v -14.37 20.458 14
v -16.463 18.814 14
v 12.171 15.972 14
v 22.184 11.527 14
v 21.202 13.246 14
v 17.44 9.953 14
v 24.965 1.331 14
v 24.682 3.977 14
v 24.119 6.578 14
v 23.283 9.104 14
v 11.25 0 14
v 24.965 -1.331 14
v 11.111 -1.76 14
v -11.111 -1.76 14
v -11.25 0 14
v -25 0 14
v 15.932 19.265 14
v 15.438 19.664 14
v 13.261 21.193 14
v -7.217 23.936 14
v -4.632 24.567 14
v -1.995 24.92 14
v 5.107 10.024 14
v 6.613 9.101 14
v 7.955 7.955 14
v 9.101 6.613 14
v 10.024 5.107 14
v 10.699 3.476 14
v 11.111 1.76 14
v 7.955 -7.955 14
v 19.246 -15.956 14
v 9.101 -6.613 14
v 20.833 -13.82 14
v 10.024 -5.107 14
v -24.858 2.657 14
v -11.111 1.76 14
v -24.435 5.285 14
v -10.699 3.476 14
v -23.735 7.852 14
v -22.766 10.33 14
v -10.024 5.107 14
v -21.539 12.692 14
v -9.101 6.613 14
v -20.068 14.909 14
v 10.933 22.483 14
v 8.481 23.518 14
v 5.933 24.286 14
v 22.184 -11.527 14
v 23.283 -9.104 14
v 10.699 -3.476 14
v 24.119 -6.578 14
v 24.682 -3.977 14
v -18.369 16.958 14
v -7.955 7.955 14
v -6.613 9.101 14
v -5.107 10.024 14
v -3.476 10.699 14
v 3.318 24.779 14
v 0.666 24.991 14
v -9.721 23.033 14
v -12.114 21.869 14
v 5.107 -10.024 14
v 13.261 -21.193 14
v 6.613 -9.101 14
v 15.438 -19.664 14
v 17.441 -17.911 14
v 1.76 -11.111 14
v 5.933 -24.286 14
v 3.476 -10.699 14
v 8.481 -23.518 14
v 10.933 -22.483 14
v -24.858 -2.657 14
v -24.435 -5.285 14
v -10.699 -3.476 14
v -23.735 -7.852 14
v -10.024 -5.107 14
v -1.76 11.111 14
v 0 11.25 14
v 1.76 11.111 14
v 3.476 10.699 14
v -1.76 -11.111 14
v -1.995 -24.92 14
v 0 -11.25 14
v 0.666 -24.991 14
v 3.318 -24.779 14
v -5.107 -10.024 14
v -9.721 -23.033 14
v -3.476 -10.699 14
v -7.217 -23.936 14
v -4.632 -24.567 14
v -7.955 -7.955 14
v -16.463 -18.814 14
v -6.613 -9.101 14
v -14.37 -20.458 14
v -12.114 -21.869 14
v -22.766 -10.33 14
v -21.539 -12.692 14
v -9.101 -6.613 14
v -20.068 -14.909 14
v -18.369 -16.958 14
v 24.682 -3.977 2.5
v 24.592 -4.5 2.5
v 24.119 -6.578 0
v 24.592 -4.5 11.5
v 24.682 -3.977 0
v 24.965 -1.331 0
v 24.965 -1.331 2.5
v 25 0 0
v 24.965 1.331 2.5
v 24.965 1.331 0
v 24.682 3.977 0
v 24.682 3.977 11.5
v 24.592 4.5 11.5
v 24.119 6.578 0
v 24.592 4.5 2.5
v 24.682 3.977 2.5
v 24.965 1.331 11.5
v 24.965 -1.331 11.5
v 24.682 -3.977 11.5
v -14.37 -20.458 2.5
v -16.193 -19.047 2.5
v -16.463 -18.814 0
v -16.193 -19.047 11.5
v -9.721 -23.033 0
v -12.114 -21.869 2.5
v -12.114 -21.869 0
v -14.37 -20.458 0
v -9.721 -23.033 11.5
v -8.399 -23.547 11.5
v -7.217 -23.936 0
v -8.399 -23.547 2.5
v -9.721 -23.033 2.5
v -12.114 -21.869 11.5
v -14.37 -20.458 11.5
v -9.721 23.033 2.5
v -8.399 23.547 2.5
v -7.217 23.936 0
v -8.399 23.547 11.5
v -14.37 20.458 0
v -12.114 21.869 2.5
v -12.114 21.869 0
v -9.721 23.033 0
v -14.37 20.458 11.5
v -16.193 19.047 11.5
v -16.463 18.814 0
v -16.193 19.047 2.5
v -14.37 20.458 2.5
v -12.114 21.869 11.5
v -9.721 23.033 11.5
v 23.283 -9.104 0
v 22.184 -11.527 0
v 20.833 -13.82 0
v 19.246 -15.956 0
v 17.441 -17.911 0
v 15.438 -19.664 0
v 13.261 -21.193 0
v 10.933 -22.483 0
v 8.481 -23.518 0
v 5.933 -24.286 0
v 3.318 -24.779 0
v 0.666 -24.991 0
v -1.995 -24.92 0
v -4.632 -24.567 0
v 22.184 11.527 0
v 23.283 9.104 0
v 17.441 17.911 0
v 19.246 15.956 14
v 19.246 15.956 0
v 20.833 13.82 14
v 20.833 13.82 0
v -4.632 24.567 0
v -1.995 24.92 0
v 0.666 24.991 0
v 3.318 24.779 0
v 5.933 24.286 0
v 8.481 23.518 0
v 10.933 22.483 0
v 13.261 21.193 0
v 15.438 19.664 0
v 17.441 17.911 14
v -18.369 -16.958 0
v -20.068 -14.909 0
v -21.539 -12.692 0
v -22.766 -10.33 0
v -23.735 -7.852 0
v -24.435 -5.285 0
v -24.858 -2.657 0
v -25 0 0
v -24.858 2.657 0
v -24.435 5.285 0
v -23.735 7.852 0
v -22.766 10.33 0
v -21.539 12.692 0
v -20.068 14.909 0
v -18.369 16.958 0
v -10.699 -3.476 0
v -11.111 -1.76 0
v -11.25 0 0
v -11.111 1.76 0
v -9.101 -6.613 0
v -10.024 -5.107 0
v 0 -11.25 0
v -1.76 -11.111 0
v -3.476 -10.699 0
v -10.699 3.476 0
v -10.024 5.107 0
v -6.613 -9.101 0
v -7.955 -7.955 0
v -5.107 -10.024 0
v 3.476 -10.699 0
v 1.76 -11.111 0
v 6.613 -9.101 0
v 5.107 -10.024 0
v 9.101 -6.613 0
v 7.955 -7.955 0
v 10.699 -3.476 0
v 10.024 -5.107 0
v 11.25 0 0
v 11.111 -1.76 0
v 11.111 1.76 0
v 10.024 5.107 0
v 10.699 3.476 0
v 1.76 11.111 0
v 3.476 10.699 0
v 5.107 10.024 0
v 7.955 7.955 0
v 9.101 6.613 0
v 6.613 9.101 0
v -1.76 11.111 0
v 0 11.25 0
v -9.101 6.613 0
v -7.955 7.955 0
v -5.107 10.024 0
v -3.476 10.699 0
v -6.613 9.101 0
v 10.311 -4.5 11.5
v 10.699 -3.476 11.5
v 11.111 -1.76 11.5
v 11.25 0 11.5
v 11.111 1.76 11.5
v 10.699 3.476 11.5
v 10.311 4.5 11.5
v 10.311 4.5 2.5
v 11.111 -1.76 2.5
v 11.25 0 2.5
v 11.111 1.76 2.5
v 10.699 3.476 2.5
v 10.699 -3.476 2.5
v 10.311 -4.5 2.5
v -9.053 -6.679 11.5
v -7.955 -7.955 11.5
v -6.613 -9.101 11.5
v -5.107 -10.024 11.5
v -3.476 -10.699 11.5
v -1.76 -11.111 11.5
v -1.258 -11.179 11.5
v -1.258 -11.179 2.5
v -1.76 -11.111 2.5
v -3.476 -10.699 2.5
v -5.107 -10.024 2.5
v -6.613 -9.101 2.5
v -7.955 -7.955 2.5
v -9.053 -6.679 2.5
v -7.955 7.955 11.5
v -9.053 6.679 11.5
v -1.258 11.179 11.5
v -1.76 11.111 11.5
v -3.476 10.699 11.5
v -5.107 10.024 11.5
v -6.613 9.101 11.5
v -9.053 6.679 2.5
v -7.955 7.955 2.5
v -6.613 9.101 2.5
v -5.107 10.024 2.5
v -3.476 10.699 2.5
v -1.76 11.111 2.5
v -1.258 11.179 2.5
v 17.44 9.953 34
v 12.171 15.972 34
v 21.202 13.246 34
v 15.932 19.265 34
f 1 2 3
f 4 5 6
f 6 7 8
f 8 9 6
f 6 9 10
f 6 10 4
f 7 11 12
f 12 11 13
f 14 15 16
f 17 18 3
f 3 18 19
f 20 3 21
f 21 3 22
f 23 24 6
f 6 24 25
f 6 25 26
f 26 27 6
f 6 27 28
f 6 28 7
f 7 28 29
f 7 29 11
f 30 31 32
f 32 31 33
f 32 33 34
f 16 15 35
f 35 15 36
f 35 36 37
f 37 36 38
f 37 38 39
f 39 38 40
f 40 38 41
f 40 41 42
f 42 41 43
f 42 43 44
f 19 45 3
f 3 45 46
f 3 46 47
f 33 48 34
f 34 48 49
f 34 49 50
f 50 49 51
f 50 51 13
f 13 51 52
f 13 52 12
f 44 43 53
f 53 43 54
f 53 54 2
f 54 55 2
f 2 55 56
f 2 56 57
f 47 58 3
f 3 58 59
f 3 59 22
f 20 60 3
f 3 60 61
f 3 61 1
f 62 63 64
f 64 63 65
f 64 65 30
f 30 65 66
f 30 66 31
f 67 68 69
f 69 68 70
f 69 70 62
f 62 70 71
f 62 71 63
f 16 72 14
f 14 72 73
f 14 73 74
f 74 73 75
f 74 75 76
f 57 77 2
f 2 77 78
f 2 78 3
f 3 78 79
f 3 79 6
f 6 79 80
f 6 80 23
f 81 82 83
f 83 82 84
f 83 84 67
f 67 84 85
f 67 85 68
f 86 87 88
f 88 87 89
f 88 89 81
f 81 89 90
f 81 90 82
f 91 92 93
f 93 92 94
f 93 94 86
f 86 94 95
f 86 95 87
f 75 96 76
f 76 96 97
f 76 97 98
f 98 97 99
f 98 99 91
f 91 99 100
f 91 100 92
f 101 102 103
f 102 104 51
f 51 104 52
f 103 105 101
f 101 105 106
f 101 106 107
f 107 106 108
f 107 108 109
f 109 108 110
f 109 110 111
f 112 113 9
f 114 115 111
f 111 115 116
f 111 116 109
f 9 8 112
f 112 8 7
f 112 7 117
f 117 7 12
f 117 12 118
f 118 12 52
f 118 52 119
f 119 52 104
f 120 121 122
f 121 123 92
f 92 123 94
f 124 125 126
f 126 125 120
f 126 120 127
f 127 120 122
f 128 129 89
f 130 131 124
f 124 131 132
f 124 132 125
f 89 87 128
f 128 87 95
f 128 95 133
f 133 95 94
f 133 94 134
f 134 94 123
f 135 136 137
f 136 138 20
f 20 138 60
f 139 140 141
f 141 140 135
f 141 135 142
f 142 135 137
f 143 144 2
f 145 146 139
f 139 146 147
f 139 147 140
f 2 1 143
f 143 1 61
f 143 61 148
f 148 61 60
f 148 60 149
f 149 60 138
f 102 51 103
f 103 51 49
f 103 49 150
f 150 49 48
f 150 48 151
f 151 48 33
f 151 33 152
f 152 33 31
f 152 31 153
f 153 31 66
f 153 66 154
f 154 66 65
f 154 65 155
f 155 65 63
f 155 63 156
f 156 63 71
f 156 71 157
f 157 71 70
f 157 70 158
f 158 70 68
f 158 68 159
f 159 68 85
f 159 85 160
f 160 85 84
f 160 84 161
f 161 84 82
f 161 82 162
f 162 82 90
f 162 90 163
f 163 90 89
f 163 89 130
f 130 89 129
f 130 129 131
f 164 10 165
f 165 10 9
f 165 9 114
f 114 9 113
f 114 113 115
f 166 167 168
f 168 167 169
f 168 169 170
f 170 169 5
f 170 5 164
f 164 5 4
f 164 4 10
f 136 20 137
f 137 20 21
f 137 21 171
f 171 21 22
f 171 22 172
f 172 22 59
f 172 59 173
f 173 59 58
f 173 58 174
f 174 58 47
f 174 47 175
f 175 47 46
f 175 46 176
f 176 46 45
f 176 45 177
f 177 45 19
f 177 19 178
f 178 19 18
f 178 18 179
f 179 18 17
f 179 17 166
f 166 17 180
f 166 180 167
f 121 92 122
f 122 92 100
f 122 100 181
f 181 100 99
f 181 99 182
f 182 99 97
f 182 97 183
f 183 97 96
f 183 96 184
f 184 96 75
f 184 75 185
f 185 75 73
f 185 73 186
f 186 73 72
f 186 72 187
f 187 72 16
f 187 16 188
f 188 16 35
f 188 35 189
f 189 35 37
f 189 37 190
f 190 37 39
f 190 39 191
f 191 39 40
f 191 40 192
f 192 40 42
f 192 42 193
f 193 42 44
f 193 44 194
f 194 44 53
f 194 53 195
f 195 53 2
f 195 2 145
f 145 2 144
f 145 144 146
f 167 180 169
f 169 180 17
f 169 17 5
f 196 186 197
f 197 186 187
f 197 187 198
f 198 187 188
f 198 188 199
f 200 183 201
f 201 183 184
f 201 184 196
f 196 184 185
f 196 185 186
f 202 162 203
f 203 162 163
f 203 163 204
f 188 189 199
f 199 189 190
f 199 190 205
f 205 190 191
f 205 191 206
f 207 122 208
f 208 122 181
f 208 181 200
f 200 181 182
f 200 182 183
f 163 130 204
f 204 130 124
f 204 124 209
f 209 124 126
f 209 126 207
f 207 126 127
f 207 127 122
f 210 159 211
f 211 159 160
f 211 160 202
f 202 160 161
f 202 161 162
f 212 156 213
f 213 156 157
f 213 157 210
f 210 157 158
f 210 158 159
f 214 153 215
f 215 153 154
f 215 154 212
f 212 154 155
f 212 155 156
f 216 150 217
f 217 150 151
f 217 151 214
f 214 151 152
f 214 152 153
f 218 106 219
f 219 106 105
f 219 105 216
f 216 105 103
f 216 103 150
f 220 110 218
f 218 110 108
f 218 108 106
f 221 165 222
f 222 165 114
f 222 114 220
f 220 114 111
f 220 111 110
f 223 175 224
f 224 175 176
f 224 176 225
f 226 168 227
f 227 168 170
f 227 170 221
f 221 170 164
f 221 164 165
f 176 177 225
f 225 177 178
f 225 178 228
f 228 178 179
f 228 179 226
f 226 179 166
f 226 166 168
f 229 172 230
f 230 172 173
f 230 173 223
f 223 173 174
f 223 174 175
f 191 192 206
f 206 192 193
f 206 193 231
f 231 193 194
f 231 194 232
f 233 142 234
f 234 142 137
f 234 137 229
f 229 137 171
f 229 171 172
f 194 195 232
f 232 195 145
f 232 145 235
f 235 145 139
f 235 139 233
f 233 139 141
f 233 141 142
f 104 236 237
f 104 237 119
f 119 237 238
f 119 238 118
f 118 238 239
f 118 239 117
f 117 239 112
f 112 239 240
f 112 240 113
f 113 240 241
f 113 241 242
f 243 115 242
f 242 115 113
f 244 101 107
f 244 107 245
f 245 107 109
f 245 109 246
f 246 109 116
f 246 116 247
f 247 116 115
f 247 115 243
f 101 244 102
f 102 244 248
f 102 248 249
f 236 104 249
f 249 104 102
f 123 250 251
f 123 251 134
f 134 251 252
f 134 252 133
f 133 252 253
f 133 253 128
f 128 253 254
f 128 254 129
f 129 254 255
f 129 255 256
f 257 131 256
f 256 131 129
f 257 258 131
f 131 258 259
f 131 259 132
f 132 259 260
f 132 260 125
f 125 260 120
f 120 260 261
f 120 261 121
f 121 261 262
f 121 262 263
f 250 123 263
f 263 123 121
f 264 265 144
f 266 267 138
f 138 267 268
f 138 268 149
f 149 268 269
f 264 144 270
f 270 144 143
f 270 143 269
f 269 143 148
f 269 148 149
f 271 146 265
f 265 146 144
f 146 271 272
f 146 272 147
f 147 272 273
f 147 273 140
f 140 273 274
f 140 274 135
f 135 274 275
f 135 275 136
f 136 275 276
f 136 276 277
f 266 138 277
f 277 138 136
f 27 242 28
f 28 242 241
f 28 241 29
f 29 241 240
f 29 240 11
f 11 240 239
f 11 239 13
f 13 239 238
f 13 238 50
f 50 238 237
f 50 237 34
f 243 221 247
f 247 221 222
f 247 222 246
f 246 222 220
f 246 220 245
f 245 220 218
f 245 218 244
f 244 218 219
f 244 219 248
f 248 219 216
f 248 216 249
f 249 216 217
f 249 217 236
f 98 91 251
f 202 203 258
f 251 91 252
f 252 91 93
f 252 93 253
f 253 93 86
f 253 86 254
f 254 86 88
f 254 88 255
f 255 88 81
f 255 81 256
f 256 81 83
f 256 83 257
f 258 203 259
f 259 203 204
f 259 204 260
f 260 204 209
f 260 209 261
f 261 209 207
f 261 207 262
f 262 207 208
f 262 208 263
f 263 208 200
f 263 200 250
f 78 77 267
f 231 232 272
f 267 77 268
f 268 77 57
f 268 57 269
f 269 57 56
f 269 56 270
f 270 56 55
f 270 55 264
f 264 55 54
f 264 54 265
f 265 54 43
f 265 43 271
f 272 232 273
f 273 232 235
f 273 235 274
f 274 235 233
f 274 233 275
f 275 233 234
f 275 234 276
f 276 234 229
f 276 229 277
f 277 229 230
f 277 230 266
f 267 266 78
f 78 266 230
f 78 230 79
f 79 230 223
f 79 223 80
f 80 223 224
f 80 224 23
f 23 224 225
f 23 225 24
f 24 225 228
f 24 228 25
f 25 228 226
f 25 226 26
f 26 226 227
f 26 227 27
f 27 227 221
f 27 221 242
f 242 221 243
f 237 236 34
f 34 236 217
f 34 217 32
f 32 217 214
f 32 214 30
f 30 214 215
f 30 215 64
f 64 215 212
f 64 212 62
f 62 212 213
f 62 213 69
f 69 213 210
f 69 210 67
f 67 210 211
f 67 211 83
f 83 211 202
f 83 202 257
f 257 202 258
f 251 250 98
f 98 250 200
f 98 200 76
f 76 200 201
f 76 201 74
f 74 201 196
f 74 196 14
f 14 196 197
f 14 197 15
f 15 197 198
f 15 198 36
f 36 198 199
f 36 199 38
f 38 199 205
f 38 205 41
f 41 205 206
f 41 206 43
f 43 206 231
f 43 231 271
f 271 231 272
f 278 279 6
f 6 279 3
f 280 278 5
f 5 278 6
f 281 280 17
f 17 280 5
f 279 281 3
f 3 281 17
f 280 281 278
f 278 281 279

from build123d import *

# Parameters (mm, degrees)
ESQUISSE1_R                  = 25
BOSS_EXTRU_1_DEPTH           = 14
ENL_V_START                  = 26
ESQUISSE2_W                  = 9
ESQUISSE2_H                  = 9
ENL_V_MAT_EXTRU_1_DEPTH      = 16
R_P_TITION_CIRCULAIRE1_COUNT = 3
ESQUISSE9_R                  = 11.25
ENL_V_MAT_EXTRU_2_DEPTH      = 16
BOSS_EXTRU_3_START           = -14
BOSS_EXTRU_3_DEPTH           = 20


with BuildPart() as part:
    # Esquisse1 → Boss.-Extru.1 (new body)
    with BuildSketch(Plane.XY):
        Circle(ESQUISSE1_R)
    extrude(amount=BOSS_EXTRU_1_DEPTH)

    # Esquisse2 → Enlèv. mat.-Extru.1 (cut)
    with BuildSketch(Plane(origin=(0, 0, 0), x_dir=(0, 0, -1), z_dir=(1, 0, 0)).offset(ENL_V_START)):
        with Locations((-7, 0)):
            Rectangle(ESQUISSE2_W, ESQUISSE2_H)
    enl_v_mat_extru_1 = extrude(amount=-ENL_V_MAT_EXTRU_1_DEPTH, mode=Mode.SUBTRACT)

    # Répétition circulaire1: Enlèv. mat.-Extru.1 ×3 about axis
    r_p_tition_circulaire1_axis = Axis((0, 0, 0), (0, 0, 1))
    for i in range(1, R_P_TITION_CIRCULAIRE1_COUNT):
        add(enl_v_mat_extru_1.rotate(r_p_tition_circulaire1_axis, i * 360 / R_P_TITION_CIRCULAIRE1_COUNT), mode=Mode.SUBTRACT)

    # Esquisse9 → Enlèv. mat.-Extru.2 (cut)
    with BuildSketch(Plane(origin=(0, 0, 0), x_dir=(-1, 0, 0), z_dir=(0, 0, -1))):
        Circle(ESQUISSE9_R)
    extrude(amount=-ENL_V_MAT_EXTRU_2_DEPTH, mode=Mode.SUBTRACT)

    # Esquisse10 → Boss.-Extru.3 (add)
    with BuildSketch(Plane(origin=(0, 0, 0), x_dir=(-1, 0, 0), z_dir=(0, 0, -1)).offset(BOSS_EXTRU_3_START)):
        Polygon((-15.932437345, 19.265446796), (-21.202216656, 13.246358325), (-17.440286362, 9.952746256), (-12.170507051, 15.971834726), align=None)
    extrude(amount=-BOSS_EXTRU_3_DEPTH)


solid = part.part
